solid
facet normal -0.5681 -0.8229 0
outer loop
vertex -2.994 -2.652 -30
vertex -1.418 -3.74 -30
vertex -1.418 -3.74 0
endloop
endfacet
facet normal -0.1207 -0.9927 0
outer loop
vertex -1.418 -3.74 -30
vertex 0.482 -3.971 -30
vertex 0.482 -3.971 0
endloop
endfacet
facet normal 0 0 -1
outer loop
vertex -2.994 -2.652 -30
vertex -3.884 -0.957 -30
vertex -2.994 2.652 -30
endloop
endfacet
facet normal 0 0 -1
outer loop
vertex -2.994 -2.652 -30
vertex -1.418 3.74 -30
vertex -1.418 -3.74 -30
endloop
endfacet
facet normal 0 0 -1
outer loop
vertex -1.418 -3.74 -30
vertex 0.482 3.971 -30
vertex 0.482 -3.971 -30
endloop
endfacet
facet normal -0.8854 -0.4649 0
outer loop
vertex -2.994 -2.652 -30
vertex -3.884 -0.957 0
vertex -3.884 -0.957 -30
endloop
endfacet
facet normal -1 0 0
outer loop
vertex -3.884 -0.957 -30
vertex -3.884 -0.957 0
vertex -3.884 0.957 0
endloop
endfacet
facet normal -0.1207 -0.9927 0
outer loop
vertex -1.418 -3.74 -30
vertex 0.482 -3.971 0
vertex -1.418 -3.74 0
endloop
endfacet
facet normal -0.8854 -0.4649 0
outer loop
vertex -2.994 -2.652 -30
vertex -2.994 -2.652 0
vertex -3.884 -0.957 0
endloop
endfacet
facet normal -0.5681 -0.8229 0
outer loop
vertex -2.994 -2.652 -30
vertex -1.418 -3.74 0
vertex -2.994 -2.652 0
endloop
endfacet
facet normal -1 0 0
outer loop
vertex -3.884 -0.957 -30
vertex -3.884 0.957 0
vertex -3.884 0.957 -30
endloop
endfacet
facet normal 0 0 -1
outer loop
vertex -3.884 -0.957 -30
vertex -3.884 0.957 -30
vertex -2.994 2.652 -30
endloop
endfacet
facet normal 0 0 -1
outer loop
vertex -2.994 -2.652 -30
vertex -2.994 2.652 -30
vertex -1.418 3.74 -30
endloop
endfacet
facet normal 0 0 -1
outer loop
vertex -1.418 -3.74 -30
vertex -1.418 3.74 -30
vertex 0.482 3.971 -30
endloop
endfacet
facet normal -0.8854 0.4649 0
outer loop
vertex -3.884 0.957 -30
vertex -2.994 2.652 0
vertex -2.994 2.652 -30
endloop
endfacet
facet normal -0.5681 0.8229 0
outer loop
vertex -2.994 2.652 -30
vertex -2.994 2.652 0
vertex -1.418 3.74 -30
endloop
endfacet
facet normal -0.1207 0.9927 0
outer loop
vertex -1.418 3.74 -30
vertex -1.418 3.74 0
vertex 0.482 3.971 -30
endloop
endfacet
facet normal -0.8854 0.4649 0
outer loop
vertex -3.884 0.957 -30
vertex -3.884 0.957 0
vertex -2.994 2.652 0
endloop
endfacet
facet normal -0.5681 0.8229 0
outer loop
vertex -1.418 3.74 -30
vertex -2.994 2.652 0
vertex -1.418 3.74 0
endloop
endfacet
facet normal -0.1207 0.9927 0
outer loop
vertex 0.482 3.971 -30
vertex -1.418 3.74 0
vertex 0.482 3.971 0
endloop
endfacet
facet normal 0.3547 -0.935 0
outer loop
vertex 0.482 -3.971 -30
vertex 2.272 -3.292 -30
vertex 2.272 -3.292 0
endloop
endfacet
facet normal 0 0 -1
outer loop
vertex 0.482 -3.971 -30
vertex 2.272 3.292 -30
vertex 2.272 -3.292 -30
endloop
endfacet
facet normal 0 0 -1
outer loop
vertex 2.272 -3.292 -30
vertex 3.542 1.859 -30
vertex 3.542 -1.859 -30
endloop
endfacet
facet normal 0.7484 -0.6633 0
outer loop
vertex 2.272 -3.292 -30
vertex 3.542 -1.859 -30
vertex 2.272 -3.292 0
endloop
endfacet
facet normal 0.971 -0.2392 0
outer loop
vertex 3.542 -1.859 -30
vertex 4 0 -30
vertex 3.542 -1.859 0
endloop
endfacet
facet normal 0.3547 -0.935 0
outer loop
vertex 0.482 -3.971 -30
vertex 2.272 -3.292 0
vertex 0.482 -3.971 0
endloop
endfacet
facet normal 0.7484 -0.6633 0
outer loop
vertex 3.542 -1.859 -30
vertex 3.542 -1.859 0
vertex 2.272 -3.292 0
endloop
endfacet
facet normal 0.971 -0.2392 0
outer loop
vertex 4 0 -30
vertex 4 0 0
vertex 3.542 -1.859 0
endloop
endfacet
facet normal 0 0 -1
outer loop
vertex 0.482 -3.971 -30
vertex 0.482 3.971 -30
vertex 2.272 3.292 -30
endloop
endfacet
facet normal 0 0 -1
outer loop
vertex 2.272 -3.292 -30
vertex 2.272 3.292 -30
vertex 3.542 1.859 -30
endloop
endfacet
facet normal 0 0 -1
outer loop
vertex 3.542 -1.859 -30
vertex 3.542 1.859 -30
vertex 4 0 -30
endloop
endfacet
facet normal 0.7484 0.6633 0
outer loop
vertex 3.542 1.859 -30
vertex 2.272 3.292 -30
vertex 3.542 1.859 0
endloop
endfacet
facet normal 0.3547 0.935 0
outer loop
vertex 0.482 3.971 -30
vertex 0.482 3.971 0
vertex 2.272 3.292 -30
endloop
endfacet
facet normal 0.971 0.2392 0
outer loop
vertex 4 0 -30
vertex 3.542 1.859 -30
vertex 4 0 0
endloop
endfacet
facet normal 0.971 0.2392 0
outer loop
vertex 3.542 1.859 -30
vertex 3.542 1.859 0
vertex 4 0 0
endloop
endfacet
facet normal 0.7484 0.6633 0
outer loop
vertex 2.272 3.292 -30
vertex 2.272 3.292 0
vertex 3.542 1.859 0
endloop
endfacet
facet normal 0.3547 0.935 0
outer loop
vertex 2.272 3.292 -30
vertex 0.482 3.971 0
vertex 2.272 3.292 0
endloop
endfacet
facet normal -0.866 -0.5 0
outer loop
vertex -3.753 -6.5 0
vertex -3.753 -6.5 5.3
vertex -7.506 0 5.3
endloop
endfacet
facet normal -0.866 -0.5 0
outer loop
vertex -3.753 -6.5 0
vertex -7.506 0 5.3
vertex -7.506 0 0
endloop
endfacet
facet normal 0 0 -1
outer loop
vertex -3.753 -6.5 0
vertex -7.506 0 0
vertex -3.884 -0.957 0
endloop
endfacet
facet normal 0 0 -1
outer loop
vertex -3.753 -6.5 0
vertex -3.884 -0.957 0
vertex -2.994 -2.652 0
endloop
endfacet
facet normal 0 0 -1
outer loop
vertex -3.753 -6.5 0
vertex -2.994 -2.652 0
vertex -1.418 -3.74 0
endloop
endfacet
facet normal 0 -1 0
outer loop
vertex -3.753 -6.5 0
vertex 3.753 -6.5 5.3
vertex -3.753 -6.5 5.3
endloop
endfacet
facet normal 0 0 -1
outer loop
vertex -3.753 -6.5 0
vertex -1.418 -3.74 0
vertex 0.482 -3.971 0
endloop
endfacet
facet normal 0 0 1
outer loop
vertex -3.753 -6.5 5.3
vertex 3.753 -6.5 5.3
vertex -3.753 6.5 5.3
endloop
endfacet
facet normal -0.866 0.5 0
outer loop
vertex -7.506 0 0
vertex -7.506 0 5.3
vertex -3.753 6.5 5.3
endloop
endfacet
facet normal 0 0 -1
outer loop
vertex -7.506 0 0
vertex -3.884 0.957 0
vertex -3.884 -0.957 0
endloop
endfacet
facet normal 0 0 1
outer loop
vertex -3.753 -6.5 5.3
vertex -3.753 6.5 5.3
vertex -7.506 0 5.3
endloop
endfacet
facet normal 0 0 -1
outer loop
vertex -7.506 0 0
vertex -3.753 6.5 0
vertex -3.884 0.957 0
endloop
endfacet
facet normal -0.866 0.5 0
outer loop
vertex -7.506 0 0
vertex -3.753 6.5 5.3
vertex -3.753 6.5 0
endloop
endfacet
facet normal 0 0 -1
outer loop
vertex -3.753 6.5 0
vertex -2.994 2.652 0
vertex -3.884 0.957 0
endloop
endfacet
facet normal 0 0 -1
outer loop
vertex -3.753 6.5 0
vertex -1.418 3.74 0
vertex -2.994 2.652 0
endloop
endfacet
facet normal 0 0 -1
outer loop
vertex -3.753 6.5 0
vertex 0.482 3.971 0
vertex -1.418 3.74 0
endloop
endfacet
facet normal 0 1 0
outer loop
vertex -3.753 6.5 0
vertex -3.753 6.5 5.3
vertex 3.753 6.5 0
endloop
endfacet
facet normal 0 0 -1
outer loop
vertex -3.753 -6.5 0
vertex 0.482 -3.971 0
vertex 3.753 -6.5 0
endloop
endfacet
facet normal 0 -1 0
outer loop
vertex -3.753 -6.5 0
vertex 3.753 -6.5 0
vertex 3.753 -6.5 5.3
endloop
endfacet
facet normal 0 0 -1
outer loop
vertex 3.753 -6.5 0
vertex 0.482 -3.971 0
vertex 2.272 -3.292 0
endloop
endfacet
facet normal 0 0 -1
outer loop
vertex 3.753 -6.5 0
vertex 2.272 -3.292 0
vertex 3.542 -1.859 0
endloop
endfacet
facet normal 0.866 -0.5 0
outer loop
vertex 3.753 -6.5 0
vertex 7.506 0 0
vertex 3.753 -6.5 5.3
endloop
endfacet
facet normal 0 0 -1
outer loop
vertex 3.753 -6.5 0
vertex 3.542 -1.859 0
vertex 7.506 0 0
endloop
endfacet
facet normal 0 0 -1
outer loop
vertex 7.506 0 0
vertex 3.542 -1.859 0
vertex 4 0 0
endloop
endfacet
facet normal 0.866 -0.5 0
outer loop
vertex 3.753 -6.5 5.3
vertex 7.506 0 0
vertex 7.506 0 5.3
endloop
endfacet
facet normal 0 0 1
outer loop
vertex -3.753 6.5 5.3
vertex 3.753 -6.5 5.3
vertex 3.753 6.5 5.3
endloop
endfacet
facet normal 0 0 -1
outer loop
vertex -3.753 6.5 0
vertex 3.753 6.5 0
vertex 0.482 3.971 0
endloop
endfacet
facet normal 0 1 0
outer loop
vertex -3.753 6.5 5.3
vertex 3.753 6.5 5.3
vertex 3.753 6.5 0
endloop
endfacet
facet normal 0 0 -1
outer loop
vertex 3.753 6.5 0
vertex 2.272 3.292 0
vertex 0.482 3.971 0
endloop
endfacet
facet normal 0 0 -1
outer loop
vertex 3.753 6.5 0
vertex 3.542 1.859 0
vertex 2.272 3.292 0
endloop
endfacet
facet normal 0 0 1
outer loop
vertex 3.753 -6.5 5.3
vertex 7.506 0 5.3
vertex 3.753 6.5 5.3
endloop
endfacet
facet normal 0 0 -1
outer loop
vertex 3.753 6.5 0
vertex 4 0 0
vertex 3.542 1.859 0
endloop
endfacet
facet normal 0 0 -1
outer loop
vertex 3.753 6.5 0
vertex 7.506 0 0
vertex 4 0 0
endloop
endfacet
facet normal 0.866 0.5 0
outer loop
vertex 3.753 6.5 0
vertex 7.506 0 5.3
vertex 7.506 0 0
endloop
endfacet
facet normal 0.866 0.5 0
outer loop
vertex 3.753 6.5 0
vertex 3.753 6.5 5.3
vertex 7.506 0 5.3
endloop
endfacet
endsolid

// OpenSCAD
af = 13;
head_height = 5.3;
shaft_diameter = 8;
shaft_length = 30;

union() {
    translate([0, 0, -shaft_length])
        cylinder(h = shaft_length, d = shaft_diameter);

    cylinder(h = head_height, r = af / sqrt(3), $fn = 6);
}
